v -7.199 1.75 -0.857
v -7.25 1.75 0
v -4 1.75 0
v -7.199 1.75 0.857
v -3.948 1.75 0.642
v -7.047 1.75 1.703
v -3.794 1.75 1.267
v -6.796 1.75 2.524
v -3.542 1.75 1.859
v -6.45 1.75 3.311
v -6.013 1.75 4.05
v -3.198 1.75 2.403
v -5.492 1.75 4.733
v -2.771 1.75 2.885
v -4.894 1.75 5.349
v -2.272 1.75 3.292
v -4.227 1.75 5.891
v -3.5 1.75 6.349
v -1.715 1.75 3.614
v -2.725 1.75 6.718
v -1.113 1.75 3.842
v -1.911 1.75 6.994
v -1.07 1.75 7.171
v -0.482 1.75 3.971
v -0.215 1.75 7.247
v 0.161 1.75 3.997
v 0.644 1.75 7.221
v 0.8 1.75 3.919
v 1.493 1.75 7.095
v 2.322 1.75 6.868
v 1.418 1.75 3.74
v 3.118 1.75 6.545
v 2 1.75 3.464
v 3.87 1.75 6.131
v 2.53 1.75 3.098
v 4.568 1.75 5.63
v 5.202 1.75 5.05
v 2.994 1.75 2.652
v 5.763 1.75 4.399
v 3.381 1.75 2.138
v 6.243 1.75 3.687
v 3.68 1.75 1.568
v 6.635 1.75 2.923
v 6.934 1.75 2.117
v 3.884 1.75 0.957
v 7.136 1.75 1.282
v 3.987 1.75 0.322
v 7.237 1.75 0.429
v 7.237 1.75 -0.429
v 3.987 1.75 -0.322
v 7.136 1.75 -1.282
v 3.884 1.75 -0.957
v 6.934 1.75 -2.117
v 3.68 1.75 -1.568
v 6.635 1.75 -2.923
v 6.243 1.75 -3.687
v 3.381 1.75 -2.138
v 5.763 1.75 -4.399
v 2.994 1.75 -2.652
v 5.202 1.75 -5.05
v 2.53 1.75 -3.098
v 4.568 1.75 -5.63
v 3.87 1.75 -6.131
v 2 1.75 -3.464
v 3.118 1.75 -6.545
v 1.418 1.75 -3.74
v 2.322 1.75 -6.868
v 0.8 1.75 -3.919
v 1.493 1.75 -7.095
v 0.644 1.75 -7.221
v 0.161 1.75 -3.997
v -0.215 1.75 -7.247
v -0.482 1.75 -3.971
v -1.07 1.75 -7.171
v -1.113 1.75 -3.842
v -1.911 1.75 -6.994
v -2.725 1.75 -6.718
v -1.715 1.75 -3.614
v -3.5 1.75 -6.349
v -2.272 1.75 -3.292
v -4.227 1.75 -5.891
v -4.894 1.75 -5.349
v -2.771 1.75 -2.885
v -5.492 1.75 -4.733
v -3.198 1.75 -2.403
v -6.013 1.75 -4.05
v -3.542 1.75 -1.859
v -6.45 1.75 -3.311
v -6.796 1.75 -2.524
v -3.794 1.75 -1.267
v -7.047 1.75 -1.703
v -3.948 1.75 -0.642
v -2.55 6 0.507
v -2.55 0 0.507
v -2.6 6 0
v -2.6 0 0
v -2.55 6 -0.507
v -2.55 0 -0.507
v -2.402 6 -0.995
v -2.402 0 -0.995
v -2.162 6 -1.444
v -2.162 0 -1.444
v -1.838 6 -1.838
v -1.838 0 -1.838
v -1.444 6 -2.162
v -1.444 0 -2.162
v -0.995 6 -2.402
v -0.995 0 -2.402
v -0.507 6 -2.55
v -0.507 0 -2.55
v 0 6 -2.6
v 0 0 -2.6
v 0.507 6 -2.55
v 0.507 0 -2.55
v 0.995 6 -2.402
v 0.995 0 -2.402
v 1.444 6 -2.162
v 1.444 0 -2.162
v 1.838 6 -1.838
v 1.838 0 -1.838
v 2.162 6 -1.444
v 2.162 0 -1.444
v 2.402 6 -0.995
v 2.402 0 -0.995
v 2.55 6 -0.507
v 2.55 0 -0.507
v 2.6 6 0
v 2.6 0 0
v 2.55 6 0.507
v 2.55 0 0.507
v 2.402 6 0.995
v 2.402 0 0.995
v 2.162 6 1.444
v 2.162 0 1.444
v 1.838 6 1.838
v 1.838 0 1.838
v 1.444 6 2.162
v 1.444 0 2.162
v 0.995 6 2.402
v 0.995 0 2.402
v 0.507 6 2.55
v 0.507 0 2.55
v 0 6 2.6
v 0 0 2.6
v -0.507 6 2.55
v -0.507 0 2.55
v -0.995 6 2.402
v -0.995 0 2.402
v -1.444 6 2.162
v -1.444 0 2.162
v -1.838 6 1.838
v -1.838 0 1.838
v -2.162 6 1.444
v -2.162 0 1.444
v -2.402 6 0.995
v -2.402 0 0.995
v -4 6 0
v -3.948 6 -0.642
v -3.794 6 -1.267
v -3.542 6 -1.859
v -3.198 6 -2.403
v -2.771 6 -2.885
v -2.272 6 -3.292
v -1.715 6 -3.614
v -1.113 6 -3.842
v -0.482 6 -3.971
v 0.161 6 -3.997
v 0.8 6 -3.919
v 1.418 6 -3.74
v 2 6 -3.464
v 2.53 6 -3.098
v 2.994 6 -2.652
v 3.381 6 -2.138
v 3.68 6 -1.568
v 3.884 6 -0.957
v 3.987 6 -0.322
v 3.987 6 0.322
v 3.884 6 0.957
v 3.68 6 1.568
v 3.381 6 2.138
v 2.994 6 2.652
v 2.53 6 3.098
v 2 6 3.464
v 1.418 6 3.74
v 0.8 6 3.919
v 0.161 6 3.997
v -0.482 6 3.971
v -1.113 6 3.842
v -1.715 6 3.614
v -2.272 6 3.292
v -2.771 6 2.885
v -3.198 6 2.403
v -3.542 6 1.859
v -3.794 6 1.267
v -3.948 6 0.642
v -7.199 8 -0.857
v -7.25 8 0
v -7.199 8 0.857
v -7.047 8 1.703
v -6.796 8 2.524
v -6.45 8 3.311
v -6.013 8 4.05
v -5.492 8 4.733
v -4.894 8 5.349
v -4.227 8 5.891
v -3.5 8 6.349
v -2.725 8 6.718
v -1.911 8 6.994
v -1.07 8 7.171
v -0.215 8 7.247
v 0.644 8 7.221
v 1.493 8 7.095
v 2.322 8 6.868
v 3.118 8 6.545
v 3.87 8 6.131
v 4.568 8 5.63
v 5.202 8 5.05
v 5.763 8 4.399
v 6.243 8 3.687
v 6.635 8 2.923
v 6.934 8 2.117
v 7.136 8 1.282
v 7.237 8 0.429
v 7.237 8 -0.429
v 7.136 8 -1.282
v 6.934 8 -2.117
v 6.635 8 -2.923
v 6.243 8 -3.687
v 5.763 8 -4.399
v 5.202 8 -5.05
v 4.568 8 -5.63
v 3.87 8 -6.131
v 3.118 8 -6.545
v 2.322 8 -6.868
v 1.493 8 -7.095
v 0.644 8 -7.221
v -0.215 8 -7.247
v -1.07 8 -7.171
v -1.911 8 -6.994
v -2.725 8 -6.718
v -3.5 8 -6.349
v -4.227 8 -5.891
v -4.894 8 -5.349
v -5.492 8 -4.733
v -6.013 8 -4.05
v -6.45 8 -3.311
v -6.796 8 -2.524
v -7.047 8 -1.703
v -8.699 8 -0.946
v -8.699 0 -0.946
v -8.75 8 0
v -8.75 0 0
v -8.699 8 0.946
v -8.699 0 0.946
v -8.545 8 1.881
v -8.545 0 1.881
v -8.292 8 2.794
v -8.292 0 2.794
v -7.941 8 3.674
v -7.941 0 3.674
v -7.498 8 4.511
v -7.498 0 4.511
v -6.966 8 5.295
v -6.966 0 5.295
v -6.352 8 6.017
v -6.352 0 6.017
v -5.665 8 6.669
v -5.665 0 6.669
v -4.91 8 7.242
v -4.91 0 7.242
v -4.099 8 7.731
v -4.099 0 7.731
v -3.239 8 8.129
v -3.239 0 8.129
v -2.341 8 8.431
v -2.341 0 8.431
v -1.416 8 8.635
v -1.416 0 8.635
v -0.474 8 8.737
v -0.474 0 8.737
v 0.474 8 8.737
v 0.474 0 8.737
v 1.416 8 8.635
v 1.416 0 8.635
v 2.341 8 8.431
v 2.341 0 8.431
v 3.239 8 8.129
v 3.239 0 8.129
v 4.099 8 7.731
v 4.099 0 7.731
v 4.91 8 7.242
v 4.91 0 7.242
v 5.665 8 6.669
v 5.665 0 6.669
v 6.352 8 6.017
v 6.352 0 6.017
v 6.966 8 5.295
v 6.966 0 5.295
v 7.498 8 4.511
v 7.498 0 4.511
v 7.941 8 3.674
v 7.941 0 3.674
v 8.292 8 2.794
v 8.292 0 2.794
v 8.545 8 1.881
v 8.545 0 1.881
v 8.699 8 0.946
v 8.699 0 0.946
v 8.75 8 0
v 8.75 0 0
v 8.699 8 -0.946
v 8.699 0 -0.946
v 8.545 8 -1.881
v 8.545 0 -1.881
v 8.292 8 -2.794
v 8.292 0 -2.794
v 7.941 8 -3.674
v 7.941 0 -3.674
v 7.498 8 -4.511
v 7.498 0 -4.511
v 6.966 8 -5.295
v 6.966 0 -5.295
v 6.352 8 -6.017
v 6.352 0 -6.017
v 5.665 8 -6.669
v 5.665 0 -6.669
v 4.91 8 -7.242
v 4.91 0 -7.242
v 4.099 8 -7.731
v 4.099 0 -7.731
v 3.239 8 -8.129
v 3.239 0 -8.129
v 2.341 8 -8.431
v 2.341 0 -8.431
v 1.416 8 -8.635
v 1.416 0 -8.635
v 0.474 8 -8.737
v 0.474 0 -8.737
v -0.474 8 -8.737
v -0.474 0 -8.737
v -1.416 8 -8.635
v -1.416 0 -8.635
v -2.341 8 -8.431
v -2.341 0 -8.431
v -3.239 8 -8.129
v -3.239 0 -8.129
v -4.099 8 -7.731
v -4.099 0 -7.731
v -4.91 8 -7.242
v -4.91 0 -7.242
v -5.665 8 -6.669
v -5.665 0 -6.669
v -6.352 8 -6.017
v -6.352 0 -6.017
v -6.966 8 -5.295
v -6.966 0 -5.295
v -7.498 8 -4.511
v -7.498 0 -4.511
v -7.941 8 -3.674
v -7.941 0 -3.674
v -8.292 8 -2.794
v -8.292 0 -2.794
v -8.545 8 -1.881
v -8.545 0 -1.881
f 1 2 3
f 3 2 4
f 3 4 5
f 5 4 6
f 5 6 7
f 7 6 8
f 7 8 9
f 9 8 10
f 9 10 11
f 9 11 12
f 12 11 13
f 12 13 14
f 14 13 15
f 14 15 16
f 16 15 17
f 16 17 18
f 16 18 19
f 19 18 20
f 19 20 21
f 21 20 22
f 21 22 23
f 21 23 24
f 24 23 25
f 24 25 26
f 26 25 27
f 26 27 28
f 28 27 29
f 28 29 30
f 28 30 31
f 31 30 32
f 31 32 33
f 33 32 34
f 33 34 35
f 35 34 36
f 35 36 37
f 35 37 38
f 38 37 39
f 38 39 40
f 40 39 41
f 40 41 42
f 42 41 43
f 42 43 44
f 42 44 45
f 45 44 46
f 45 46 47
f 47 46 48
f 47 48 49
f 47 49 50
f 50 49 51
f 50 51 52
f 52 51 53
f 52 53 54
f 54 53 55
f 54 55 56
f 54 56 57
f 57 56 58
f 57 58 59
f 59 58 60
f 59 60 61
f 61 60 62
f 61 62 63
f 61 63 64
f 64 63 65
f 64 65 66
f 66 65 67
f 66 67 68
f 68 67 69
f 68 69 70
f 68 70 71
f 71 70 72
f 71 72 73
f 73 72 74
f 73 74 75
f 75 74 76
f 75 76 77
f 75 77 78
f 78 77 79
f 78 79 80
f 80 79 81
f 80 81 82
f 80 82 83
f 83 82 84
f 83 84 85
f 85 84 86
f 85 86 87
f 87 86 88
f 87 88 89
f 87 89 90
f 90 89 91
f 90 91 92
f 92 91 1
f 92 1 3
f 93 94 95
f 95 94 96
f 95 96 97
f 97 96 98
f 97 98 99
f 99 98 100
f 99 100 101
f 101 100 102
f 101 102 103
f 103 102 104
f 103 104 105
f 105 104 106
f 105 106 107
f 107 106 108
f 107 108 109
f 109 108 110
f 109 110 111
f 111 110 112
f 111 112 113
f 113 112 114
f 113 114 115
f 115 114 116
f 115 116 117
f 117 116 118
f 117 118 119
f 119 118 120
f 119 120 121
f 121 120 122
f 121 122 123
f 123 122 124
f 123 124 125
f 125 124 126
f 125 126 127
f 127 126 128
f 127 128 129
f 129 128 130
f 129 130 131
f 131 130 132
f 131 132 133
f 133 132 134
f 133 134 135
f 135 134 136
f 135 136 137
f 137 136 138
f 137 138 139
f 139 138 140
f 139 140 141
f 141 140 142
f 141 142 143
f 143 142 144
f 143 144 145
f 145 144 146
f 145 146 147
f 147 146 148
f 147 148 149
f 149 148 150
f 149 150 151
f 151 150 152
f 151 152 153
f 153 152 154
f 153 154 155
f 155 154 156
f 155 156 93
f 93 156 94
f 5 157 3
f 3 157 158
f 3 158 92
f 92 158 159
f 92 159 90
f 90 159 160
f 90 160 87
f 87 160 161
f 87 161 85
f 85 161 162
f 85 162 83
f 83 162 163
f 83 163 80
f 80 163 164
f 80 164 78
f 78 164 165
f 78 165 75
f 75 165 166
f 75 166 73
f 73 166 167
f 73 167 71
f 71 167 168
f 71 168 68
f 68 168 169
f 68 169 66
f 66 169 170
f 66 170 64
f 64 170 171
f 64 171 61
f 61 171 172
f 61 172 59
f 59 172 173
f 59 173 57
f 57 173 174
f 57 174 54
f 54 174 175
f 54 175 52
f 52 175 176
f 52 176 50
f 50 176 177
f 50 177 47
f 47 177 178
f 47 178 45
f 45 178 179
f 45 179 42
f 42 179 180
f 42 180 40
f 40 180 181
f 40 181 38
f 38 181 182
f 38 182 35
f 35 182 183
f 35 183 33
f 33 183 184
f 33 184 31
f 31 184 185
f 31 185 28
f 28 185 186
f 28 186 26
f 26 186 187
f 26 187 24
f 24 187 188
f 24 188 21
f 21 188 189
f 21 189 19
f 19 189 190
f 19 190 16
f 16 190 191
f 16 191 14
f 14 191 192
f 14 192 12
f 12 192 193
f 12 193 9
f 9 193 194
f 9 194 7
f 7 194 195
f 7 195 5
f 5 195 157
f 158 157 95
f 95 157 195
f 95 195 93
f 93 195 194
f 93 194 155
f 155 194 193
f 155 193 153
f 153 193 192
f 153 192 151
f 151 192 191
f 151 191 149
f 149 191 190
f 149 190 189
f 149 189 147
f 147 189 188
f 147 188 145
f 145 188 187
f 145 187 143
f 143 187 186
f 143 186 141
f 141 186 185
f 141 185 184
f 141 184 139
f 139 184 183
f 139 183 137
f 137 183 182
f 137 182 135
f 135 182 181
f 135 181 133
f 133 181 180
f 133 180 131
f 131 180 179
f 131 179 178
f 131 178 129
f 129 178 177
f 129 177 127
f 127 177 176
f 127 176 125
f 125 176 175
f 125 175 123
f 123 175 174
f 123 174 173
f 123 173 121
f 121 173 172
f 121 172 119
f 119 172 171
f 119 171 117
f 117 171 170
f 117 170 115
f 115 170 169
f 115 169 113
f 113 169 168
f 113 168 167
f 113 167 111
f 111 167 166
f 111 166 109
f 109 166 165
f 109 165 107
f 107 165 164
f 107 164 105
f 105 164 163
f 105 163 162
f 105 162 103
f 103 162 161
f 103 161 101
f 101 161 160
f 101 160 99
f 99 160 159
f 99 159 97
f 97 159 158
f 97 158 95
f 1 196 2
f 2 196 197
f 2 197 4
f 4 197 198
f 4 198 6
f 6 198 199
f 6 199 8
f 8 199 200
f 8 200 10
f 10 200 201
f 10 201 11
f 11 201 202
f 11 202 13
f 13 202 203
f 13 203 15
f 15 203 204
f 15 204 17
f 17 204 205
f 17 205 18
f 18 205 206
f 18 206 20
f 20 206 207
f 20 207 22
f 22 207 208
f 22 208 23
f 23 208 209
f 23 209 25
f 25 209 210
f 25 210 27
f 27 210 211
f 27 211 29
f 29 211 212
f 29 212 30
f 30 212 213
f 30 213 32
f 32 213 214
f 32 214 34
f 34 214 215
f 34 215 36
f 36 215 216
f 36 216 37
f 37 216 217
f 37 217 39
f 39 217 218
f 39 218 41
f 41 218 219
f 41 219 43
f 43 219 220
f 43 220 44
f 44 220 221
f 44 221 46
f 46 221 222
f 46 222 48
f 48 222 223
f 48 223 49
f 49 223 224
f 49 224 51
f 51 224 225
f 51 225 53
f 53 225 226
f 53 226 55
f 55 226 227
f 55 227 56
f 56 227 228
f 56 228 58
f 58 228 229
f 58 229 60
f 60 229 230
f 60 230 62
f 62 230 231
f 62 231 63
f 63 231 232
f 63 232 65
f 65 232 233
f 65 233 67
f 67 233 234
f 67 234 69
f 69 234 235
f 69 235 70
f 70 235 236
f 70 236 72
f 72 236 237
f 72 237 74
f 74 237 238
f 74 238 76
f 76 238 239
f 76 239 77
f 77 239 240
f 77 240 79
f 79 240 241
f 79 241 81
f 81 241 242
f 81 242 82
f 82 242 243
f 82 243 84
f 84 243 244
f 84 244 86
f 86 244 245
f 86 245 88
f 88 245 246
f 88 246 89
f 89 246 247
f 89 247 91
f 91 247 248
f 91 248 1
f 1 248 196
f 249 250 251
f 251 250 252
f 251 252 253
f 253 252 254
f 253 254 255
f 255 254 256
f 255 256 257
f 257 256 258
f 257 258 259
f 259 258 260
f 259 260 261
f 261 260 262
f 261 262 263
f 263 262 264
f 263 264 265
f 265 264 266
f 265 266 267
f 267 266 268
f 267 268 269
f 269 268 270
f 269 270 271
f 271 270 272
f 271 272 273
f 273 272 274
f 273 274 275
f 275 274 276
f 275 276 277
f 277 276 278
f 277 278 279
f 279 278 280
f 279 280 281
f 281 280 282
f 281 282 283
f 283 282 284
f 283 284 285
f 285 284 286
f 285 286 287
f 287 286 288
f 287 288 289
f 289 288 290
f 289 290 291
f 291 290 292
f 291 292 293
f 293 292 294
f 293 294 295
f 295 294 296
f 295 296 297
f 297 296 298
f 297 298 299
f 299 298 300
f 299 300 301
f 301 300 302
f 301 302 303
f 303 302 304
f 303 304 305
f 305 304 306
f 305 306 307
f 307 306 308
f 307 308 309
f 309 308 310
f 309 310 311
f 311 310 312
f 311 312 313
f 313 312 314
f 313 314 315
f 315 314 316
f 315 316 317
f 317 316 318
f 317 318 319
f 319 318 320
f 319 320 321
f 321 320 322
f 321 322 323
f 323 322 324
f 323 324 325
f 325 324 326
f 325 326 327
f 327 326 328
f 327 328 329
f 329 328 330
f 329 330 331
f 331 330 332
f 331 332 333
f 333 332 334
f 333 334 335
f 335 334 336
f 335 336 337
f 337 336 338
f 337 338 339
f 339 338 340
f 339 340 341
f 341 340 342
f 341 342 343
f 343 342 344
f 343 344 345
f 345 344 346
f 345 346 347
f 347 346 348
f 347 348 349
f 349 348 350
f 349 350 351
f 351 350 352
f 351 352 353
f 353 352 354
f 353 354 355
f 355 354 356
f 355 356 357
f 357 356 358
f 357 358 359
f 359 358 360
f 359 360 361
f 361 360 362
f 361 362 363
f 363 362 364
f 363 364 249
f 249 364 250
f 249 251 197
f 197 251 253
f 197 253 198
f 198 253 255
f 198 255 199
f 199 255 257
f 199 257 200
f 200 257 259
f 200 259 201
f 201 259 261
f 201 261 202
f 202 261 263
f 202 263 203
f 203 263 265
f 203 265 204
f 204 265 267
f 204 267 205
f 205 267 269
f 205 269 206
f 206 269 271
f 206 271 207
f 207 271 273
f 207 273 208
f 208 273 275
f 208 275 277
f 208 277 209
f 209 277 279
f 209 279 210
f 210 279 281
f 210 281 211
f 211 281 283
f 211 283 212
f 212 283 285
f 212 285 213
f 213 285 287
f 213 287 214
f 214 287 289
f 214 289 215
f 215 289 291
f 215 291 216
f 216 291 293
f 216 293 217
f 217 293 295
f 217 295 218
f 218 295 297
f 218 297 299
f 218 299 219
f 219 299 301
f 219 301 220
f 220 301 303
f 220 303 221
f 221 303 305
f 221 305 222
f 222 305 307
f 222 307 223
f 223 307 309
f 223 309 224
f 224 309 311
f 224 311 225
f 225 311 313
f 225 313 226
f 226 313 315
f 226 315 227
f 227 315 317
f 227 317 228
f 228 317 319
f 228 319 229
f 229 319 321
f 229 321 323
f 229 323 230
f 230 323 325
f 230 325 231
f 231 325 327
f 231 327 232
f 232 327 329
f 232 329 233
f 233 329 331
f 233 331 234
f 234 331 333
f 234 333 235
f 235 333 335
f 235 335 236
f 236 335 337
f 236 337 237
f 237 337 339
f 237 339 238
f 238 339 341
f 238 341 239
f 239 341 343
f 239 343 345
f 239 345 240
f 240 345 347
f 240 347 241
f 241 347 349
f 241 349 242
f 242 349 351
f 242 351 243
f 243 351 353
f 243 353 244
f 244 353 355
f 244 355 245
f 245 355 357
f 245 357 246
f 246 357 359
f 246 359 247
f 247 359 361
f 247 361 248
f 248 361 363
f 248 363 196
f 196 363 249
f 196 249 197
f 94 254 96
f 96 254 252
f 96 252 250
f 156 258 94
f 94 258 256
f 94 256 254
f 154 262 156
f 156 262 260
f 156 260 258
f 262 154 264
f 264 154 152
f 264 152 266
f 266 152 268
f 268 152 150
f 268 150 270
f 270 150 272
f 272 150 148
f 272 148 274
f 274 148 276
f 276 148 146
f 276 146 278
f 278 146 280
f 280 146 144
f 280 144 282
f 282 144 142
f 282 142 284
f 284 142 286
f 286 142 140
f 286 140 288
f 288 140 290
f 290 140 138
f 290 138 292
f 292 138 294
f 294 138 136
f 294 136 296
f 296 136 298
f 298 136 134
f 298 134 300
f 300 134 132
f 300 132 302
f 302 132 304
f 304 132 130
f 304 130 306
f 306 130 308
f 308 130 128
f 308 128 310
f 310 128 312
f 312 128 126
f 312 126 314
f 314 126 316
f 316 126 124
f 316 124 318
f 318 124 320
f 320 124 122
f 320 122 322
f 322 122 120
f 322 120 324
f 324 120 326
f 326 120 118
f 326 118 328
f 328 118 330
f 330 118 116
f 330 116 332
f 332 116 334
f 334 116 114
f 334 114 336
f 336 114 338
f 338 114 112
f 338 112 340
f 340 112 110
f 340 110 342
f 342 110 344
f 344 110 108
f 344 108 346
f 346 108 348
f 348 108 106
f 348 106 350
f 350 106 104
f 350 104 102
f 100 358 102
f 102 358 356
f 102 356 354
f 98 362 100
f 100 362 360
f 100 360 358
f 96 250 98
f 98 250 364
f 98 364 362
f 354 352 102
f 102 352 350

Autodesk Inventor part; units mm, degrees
ref_plane "YZ Plane" through (0, 0, 0) normal (1, 0, 0) x (0, 1, 0)
ref_plane "XZ Plane" through (0, 0, 0) normal (0, 1, 0) x (-1, 0, 0)
ref_plane "XY Plane" through (0, 0, 0) normal (0, 0, 1) x (1, 0, 0)
sketch "Эскиз1" plane through (0, 0, 0) normal (0, 1, 0) x (-1, 0, 0)
  circle A0 centre (0, 0) radius 8.75
  circle A1 centre (0, 0) radius 2.6
  circle A2 centre (0, 0) radius 4
  circle A3 centre (0, 0) radius 7.25
  point P0 (-0.75, 3.9291)
  point P1 (-0.6797, 7.2181)
  point P2 (0.6797, 7.2181)
  point P3 (0.75, 3.9291)
  dimension "d1" = 5.2
  dimension "d2" = 8
  dimension "d41" = 17.5
  dimension "d43" = 1.5
extrude "Выдавливание1" add sketch "Эскиз1" along normal blind 8 contours A0
extrude "Выдавливание7" add sketch "Эскиз1" along normal blind 6 contours A2
extrude "Выдавливание8" add sketch "Эскиз1" along normal blind 1.75 contours A3
properties part number "Колесо"
